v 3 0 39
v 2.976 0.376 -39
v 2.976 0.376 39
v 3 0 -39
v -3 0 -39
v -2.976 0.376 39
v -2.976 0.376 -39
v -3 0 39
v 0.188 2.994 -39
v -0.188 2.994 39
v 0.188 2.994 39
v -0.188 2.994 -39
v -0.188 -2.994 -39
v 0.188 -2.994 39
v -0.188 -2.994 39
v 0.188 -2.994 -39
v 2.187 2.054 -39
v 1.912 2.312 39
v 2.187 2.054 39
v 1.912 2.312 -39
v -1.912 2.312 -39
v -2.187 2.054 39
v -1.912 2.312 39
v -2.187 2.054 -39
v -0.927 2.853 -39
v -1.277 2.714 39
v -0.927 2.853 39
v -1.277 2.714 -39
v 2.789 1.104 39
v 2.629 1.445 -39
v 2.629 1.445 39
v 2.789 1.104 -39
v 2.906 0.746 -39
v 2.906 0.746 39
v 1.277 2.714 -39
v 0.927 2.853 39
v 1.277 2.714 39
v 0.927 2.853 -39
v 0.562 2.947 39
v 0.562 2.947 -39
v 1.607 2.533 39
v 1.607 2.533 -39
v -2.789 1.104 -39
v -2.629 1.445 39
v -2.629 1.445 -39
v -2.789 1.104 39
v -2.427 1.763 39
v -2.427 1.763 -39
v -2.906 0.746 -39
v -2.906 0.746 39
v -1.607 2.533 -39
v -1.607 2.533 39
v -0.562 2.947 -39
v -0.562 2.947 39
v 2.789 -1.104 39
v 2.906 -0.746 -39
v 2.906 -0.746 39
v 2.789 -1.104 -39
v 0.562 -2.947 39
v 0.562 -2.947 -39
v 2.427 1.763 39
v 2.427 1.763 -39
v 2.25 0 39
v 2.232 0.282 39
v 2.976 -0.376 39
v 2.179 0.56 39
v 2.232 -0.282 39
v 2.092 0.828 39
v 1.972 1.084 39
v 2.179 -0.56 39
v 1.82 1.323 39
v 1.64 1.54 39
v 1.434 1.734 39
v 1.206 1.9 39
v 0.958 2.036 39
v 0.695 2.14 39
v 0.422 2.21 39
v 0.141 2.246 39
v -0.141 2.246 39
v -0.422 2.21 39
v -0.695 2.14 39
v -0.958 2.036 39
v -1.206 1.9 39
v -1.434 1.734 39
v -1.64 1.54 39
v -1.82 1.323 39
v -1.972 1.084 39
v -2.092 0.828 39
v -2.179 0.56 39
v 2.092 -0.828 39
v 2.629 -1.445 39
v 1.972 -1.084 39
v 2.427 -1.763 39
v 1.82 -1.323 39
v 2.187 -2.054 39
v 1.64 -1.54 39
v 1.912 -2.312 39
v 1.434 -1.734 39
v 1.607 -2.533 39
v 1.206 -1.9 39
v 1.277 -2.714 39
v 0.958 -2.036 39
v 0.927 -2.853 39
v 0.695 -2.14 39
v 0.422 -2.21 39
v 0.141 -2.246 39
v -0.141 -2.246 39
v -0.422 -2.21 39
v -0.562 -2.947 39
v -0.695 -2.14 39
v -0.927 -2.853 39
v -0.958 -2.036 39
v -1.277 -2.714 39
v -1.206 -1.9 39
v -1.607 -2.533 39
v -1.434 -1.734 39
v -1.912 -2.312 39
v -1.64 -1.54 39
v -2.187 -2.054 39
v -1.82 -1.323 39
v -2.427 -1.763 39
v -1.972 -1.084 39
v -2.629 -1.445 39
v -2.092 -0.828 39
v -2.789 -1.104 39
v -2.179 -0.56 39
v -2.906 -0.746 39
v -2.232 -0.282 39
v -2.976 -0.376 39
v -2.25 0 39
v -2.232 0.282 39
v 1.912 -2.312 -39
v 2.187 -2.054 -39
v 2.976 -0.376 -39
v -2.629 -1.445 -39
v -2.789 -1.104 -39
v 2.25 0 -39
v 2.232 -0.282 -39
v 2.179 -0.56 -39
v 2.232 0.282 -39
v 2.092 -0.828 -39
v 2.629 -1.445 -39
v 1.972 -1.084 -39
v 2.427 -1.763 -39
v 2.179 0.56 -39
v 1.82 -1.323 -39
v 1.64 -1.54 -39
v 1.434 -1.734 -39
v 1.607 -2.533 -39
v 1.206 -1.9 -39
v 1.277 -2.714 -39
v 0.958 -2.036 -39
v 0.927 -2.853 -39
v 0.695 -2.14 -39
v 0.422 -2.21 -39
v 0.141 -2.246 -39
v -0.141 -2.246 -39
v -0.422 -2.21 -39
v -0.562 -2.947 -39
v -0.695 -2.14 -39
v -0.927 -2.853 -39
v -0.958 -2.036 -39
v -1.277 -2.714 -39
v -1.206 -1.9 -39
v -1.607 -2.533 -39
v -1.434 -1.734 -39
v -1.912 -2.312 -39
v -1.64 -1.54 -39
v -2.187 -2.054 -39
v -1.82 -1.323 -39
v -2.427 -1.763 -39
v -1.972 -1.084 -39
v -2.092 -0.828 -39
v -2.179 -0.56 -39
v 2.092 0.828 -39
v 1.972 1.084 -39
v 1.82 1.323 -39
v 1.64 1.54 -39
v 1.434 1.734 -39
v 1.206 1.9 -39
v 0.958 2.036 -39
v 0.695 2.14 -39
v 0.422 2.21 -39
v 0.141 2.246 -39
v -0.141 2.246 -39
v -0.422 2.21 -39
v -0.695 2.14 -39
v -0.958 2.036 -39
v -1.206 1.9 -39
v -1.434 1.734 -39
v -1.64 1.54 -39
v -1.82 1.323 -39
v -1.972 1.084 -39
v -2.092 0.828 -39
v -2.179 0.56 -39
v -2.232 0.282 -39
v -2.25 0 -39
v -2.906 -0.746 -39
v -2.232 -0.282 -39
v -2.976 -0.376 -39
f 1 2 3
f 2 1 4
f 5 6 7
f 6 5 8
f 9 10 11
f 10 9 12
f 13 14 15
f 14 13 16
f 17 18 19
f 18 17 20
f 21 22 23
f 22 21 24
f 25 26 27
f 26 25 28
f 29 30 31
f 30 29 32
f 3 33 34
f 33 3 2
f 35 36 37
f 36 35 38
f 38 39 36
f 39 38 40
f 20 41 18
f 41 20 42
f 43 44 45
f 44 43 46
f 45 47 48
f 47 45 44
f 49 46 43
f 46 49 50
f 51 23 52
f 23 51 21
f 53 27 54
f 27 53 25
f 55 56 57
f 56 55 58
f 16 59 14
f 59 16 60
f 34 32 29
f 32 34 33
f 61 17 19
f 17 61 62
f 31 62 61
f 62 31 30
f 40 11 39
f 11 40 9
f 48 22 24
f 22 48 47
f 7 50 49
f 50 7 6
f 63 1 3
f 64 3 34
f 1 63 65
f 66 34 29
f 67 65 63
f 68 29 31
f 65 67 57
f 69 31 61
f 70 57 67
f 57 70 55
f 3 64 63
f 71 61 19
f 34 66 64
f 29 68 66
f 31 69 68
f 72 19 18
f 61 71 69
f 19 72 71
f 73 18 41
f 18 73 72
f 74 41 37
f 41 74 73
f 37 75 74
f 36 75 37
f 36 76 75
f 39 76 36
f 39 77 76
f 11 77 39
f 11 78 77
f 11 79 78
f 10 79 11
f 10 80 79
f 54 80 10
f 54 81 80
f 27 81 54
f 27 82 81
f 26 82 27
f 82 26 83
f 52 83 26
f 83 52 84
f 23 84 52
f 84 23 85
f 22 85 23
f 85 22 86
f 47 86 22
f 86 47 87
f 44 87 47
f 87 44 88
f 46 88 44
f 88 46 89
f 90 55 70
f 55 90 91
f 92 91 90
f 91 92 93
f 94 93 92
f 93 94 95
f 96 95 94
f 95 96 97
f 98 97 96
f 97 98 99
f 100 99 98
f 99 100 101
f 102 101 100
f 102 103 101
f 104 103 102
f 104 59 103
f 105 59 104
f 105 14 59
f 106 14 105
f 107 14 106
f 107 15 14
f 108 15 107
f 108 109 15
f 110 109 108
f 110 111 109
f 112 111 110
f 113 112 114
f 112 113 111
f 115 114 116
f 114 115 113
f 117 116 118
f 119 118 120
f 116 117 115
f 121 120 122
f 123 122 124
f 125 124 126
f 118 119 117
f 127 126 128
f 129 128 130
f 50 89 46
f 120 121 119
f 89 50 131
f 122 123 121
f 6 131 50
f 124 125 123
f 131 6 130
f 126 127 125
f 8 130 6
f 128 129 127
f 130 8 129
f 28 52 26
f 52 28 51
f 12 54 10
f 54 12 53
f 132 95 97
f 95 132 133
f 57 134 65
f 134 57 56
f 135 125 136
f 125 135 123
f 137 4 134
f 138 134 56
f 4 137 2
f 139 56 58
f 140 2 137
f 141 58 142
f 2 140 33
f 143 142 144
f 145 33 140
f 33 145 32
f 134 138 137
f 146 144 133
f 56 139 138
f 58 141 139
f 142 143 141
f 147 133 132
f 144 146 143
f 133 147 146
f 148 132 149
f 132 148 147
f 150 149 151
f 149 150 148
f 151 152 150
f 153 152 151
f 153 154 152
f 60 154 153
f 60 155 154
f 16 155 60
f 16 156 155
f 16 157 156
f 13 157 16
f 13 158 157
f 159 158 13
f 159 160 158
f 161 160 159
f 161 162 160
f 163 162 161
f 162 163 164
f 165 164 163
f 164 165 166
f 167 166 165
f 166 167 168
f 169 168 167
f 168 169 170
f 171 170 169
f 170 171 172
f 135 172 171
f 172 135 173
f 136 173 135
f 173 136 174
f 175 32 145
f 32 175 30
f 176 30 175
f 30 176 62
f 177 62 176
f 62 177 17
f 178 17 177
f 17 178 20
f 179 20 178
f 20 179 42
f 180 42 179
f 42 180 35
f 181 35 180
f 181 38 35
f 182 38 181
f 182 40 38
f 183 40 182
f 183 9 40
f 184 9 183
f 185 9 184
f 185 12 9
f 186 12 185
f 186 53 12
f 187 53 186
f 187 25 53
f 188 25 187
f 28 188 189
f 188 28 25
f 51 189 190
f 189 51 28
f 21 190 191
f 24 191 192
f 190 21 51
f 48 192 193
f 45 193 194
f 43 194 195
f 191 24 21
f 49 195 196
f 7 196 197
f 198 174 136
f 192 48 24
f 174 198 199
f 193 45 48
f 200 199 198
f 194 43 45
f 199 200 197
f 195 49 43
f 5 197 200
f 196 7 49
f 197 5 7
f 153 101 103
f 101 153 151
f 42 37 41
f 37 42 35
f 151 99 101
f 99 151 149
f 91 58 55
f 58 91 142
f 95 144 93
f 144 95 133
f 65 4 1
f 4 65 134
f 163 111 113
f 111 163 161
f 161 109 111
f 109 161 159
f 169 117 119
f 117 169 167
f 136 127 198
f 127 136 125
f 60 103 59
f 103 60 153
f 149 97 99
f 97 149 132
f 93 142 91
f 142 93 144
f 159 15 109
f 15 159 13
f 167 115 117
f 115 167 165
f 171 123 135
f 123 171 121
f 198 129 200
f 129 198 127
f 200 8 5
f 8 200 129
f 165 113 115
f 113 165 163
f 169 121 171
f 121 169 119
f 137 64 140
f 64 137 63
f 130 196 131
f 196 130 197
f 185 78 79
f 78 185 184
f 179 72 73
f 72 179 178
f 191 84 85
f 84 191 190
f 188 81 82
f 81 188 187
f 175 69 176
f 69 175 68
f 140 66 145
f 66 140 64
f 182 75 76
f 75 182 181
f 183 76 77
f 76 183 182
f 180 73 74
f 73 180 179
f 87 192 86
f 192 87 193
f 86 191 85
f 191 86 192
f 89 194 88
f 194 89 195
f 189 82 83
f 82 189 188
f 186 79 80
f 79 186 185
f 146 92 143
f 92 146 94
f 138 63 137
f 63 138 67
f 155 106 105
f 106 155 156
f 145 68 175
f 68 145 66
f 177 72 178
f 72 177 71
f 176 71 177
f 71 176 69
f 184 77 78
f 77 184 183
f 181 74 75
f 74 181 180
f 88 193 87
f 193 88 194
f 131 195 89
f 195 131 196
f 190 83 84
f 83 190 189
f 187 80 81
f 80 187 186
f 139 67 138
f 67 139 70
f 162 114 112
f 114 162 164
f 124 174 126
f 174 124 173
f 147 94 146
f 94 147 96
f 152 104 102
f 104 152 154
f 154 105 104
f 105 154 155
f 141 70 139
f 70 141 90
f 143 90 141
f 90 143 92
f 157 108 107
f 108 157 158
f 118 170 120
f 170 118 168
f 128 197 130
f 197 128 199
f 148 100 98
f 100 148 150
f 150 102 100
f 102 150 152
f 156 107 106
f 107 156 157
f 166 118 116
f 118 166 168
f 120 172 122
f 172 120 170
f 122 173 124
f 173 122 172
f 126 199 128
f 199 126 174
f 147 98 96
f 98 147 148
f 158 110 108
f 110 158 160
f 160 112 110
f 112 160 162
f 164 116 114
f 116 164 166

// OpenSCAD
$fn = 50;


difference() {
	union() {
		translate(v = [0, 0, -39.0000000000]) {
			cylinder(h = 78, r = 3.0000000000);
		}
	}
	union() {
		translate(v = [0, 0, -100.0000000000]) {
			cylinder(h = 200, r = 2.2500000000);
		}
	}
}
